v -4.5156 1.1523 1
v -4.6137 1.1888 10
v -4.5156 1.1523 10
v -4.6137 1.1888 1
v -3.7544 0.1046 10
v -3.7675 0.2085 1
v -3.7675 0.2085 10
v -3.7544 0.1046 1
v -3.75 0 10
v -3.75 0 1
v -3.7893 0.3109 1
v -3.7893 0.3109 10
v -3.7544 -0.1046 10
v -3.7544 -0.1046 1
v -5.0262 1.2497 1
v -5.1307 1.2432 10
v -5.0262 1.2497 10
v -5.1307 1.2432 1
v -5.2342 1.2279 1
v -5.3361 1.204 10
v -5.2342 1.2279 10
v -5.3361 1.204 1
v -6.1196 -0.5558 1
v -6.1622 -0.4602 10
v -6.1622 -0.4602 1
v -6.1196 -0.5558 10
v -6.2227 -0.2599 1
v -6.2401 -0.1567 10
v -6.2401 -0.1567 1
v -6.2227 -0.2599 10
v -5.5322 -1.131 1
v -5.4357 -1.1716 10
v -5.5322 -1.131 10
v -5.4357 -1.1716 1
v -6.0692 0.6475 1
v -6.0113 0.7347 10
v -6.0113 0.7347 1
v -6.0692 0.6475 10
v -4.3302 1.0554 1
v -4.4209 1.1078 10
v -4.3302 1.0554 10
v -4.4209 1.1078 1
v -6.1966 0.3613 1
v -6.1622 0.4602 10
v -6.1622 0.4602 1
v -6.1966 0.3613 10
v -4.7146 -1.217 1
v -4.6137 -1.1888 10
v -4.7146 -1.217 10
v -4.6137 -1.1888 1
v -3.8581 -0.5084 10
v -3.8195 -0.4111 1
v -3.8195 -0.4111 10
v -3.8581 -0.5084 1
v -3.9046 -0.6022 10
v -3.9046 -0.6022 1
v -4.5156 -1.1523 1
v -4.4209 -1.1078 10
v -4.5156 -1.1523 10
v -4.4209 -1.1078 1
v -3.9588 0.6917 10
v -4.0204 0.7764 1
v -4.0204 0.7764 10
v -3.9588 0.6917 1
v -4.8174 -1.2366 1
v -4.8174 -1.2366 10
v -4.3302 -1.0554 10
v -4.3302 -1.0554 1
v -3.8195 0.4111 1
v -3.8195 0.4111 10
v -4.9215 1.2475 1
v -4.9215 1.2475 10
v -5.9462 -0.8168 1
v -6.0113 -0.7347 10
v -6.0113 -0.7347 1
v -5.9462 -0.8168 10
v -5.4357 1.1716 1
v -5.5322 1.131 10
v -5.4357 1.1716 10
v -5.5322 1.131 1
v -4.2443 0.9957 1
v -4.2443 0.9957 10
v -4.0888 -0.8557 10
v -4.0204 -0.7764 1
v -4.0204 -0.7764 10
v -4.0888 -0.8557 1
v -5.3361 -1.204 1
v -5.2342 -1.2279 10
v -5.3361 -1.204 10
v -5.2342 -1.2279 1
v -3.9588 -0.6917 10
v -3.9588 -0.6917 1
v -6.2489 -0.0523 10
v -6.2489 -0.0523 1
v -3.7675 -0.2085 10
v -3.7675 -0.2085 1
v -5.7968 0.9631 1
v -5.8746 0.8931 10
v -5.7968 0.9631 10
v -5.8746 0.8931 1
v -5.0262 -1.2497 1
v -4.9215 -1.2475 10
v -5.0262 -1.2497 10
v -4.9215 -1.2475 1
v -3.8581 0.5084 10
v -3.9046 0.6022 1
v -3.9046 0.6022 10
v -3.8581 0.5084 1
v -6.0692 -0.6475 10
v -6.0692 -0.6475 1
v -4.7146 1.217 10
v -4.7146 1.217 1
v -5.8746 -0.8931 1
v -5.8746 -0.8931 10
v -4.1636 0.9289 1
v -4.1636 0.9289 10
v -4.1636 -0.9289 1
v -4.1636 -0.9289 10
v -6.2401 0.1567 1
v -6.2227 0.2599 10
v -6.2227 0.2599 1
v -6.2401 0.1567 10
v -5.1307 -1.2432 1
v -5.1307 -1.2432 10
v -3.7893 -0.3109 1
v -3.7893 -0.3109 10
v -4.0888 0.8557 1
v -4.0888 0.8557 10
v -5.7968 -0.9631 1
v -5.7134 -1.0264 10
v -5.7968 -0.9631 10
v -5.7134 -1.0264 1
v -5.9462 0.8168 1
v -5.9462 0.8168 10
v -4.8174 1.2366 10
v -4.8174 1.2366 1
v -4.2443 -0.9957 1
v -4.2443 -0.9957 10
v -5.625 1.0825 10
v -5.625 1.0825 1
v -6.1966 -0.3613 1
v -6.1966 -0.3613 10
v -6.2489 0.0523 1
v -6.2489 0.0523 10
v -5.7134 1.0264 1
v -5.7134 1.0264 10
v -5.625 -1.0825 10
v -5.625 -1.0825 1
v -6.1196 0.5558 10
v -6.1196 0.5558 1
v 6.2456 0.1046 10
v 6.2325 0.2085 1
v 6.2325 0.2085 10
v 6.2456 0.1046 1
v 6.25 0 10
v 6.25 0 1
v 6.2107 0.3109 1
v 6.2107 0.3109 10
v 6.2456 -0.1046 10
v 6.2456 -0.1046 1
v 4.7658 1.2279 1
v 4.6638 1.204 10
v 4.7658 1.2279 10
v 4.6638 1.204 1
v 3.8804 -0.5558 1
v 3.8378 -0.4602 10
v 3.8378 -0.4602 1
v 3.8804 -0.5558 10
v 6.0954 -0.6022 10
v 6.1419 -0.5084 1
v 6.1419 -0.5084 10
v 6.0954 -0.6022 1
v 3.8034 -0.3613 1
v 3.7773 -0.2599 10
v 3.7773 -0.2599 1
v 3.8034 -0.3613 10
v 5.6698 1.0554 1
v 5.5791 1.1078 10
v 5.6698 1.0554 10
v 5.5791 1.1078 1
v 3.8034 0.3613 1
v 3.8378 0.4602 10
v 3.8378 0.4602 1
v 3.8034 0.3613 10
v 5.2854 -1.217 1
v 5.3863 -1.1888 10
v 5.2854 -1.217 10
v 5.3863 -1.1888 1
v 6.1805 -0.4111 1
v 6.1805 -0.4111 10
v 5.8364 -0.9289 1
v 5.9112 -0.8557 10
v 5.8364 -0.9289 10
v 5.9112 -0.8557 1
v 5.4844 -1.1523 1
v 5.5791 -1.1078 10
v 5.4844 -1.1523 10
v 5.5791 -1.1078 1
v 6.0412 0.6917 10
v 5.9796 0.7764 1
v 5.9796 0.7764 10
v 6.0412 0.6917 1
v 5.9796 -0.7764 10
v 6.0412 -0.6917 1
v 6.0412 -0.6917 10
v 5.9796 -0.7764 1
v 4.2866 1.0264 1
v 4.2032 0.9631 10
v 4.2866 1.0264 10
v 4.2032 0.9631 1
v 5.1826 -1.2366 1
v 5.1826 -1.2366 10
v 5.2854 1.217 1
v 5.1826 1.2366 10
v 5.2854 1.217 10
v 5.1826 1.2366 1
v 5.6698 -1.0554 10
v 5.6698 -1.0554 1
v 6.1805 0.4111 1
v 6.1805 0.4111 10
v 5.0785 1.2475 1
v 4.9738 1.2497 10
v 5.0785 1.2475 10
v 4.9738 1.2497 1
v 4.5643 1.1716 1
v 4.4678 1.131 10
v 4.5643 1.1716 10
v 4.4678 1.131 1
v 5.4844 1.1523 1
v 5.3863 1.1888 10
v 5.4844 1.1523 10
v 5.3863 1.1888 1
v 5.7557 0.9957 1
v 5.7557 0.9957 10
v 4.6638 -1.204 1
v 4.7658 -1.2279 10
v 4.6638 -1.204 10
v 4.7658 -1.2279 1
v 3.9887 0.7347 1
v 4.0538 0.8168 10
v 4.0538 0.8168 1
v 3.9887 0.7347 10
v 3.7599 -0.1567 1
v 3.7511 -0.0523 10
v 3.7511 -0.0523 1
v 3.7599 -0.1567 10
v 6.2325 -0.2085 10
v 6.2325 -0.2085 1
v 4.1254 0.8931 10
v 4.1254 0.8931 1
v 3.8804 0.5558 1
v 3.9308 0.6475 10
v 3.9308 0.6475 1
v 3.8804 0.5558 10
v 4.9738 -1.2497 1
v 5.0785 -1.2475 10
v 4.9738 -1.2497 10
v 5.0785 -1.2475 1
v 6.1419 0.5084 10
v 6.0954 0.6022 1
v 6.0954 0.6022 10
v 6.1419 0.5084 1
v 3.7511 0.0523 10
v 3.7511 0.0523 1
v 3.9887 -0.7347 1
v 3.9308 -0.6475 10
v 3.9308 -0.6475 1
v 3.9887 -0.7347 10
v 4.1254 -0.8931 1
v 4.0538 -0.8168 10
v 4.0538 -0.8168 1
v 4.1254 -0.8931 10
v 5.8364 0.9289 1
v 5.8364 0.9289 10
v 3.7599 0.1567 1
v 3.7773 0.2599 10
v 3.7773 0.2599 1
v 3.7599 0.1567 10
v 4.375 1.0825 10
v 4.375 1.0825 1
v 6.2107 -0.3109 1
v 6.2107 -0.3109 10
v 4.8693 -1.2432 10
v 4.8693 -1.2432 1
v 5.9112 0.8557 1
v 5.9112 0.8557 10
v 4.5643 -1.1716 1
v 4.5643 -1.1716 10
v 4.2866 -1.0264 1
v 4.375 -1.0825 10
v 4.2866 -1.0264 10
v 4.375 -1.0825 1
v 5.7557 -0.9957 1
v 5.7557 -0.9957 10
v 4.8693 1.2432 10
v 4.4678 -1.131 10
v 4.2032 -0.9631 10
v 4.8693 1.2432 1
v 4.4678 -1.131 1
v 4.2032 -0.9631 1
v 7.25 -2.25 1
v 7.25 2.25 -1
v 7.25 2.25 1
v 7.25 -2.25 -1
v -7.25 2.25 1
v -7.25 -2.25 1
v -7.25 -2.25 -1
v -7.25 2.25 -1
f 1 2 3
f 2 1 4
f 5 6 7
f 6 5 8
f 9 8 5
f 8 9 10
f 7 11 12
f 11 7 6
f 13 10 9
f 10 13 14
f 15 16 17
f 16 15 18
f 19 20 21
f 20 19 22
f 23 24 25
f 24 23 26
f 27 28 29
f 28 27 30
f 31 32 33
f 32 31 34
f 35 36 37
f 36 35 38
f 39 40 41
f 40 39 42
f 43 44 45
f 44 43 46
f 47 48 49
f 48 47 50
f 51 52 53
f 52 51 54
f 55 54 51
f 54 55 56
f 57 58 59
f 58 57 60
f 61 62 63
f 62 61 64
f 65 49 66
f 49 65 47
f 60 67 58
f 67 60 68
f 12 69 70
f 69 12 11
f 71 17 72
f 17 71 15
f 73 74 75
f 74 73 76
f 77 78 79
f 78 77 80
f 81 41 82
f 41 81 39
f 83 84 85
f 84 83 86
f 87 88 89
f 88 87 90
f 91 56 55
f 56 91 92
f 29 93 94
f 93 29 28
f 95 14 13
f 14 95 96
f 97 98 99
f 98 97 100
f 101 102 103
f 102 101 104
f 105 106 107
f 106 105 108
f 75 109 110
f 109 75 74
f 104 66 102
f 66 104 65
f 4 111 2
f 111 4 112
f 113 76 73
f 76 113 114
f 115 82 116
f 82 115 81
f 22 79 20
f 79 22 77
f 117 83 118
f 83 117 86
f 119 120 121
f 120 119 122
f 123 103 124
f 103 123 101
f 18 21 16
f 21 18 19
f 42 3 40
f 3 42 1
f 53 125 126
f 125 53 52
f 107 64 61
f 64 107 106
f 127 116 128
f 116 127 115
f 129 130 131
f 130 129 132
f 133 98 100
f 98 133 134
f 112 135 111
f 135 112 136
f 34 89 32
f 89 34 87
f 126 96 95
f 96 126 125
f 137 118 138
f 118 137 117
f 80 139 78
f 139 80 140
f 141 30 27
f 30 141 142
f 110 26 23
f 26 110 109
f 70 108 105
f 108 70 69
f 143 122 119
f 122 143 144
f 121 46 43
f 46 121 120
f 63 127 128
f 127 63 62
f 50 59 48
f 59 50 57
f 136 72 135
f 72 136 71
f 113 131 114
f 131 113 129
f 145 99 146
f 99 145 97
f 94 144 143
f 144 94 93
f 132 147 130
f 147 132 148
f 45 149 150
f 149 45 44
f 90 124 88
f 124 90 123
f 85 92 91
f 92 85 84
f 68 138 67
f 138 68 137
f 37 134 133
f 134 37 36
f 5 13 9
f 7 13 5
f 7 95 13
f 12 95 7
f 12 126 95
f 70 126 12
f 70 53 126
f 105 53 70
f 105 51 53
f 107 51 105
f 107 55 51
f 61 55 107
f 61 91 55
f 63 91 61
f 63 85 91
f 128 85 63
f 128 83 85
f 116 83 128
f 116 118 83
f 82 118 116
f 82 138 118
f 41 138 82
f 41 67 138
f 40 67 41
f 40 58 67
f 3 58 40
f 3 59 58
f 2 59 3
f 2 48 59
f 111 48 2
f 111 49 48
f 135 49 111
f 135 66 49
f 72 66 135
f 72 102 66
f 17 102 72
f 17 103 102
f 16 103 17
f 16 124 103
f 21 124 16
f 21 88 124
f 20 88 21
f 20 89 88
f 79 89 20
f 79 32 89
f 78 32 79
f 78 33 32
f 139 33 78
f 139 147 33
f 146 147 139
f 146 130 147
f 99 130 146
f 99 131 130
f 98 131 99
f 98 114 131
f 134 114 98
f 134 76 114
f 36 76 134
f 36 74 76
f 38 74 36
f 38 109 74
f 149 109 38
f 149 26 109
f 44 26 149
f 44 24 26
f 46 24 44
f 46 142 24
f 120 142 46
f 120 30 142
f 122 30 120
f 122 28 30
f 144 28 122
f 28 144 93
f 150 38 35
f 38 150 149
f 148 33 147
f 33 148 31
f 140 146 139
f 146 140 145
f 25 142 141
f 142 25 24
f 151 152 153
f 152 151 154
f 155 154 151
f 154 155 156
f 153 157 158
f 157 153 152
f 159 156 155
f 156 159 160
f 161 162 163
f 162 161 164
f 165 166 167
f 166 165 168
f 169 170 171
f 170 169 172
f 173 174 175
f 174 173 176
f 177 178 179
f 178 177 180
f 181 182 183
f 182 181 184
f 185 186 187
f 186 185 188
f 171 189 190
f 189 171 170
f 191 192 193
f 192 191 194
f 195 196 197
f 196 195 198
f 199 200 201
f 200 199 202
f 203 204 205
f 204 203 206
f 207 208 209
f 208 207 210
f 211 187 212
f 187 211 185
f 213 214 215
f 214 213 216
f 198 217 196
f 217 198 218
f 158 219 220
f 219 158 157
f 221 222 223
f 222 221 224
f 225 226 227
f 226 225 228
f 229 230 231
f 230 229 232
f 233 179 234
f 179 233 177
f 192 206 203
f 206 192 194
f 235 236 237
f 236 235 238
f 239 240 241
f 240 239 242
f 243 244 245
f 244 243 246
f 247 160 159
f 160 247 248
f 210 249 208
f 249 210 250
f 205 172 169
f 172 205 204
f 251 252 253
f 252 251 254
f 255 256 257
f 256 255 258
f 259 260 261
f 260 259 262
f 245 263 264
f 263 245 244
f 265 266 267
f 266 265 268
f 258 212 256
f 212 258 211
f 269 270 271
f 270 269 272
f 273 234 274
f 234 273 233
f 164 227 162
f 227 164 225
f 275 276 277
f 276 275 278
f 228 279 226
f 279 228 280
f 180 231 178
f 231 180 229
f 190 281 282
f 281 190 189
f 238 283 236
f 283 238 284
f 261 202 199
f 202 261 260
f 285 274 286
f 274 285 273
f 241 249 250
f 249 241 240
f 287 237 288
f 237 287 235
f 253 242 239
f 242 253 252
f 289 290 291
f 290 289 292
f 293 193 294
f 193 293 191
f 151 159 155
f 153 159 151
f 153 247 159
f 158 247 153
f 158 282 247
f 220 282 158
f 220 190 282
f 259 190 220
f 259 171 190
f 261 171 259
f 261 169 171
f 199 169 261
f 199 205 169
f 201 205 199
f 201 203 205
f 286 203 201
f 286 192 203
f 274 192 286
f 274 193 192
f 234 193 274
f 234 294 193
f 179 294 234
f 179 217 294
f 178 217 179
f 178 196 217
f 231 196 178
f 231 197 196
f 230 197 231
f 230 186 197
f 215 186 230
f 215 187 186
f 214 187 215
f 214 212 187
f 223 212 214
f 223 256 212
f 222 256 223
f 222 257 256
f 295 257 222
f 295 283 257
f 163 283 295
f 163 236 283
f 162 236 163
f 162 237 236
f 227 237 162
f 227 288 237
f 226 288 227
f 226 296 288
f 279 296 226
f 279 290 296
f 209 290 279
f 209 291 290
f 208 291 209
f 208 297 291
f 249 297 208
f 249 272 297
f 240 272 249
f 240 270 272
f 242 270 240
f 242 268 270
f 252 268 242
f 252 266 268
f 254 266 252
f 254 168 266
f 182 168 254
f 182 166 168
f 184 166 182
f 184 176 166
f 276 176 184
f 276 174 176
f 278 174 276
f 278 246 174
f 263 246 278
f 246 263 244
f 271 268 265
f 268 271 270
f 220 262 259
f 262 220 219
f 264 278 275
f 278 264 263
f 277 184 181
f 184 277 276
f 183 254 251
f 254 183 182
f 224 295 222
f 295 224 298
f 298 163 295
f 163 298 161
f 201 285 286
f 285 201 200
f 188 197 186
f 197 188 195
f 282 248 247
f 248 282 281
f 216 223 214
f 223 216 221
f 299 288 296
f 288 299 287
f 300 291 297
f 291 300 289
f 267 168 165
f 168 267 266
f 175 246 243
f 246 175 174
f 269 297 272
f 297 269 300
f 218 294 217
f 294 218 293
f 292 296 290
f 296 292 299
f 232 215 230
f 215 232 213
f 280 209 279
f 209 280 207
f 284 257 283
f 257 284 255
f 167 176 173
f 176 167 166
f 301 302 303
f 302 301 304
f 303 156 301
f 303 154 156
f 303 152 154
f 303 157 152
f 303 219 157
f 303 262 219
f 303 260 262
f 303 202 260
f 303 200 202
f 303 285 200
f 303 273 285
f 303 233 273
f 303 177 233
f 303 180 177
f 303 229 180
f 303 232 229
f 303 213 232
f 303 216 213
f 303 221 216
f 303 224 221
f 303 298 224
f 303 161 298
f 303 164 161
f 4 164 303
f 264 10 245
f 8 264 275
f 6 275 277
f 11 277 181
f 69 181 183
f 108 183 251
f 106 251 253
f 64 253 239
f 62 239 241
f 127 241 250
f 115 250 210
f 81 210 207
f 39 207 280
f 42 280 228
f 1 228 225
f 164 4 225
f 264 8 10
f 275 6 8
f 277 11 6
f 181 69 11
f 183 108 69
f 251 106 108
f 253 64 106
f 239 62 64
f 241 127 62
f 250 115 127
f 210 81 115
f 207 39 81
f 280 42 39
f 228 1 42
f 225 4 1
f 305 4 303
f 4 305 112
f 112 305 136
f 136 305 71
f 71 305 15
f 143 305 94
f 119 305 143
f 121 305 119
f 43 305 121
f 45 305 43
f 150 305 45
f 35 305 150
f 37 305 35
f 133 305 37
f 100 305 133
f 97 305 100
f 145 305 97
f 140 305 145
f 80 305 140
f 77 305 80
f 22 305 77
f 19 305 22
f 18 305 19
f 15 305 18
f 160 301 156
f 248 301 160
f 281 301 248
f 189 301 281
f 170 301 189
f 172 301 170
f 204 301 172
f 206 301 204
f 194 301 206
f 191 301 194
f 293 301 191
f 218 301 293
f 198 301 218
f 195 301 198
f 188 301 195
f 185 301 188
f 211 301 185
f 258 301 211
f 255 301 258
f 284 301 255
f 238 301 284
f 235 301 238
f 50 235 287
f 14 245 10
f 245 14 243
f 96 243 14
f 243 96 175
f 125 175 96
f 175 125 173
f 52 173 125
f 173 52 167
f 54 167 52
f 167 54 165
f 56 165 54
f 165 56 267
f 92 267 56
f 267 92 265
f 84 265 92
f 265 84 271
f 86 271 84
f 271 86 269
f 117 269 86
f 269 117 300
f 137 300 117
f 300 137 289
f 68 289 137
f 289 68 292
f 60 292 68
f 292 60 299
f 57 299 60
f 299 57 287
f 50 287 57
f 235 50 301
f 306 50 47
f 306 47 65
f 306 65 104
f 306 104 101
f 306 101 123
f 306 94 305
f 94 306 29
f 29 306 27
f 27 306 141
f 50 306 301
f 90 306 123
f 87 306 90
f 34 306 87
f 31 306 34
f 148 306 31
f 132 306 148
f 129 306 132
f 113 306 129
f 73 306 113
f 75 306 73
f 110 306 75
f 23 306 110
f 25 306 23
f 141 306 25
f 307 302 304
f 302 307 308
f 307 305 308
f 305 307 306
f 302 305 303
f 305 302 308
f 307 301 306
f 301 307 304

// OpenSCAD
$fn=75;

Diametro = 2.5;
Distancia = 10;
Largo = 10;


cube([Distancia+Diametro+2, Diametro+2,2],center=true);
for (i =[-Distancia/2, Distancia/2]){
    translate([i,0,Largo/2])
        cylinder(r=Diametro/2, h=Largo, center=true);

}
